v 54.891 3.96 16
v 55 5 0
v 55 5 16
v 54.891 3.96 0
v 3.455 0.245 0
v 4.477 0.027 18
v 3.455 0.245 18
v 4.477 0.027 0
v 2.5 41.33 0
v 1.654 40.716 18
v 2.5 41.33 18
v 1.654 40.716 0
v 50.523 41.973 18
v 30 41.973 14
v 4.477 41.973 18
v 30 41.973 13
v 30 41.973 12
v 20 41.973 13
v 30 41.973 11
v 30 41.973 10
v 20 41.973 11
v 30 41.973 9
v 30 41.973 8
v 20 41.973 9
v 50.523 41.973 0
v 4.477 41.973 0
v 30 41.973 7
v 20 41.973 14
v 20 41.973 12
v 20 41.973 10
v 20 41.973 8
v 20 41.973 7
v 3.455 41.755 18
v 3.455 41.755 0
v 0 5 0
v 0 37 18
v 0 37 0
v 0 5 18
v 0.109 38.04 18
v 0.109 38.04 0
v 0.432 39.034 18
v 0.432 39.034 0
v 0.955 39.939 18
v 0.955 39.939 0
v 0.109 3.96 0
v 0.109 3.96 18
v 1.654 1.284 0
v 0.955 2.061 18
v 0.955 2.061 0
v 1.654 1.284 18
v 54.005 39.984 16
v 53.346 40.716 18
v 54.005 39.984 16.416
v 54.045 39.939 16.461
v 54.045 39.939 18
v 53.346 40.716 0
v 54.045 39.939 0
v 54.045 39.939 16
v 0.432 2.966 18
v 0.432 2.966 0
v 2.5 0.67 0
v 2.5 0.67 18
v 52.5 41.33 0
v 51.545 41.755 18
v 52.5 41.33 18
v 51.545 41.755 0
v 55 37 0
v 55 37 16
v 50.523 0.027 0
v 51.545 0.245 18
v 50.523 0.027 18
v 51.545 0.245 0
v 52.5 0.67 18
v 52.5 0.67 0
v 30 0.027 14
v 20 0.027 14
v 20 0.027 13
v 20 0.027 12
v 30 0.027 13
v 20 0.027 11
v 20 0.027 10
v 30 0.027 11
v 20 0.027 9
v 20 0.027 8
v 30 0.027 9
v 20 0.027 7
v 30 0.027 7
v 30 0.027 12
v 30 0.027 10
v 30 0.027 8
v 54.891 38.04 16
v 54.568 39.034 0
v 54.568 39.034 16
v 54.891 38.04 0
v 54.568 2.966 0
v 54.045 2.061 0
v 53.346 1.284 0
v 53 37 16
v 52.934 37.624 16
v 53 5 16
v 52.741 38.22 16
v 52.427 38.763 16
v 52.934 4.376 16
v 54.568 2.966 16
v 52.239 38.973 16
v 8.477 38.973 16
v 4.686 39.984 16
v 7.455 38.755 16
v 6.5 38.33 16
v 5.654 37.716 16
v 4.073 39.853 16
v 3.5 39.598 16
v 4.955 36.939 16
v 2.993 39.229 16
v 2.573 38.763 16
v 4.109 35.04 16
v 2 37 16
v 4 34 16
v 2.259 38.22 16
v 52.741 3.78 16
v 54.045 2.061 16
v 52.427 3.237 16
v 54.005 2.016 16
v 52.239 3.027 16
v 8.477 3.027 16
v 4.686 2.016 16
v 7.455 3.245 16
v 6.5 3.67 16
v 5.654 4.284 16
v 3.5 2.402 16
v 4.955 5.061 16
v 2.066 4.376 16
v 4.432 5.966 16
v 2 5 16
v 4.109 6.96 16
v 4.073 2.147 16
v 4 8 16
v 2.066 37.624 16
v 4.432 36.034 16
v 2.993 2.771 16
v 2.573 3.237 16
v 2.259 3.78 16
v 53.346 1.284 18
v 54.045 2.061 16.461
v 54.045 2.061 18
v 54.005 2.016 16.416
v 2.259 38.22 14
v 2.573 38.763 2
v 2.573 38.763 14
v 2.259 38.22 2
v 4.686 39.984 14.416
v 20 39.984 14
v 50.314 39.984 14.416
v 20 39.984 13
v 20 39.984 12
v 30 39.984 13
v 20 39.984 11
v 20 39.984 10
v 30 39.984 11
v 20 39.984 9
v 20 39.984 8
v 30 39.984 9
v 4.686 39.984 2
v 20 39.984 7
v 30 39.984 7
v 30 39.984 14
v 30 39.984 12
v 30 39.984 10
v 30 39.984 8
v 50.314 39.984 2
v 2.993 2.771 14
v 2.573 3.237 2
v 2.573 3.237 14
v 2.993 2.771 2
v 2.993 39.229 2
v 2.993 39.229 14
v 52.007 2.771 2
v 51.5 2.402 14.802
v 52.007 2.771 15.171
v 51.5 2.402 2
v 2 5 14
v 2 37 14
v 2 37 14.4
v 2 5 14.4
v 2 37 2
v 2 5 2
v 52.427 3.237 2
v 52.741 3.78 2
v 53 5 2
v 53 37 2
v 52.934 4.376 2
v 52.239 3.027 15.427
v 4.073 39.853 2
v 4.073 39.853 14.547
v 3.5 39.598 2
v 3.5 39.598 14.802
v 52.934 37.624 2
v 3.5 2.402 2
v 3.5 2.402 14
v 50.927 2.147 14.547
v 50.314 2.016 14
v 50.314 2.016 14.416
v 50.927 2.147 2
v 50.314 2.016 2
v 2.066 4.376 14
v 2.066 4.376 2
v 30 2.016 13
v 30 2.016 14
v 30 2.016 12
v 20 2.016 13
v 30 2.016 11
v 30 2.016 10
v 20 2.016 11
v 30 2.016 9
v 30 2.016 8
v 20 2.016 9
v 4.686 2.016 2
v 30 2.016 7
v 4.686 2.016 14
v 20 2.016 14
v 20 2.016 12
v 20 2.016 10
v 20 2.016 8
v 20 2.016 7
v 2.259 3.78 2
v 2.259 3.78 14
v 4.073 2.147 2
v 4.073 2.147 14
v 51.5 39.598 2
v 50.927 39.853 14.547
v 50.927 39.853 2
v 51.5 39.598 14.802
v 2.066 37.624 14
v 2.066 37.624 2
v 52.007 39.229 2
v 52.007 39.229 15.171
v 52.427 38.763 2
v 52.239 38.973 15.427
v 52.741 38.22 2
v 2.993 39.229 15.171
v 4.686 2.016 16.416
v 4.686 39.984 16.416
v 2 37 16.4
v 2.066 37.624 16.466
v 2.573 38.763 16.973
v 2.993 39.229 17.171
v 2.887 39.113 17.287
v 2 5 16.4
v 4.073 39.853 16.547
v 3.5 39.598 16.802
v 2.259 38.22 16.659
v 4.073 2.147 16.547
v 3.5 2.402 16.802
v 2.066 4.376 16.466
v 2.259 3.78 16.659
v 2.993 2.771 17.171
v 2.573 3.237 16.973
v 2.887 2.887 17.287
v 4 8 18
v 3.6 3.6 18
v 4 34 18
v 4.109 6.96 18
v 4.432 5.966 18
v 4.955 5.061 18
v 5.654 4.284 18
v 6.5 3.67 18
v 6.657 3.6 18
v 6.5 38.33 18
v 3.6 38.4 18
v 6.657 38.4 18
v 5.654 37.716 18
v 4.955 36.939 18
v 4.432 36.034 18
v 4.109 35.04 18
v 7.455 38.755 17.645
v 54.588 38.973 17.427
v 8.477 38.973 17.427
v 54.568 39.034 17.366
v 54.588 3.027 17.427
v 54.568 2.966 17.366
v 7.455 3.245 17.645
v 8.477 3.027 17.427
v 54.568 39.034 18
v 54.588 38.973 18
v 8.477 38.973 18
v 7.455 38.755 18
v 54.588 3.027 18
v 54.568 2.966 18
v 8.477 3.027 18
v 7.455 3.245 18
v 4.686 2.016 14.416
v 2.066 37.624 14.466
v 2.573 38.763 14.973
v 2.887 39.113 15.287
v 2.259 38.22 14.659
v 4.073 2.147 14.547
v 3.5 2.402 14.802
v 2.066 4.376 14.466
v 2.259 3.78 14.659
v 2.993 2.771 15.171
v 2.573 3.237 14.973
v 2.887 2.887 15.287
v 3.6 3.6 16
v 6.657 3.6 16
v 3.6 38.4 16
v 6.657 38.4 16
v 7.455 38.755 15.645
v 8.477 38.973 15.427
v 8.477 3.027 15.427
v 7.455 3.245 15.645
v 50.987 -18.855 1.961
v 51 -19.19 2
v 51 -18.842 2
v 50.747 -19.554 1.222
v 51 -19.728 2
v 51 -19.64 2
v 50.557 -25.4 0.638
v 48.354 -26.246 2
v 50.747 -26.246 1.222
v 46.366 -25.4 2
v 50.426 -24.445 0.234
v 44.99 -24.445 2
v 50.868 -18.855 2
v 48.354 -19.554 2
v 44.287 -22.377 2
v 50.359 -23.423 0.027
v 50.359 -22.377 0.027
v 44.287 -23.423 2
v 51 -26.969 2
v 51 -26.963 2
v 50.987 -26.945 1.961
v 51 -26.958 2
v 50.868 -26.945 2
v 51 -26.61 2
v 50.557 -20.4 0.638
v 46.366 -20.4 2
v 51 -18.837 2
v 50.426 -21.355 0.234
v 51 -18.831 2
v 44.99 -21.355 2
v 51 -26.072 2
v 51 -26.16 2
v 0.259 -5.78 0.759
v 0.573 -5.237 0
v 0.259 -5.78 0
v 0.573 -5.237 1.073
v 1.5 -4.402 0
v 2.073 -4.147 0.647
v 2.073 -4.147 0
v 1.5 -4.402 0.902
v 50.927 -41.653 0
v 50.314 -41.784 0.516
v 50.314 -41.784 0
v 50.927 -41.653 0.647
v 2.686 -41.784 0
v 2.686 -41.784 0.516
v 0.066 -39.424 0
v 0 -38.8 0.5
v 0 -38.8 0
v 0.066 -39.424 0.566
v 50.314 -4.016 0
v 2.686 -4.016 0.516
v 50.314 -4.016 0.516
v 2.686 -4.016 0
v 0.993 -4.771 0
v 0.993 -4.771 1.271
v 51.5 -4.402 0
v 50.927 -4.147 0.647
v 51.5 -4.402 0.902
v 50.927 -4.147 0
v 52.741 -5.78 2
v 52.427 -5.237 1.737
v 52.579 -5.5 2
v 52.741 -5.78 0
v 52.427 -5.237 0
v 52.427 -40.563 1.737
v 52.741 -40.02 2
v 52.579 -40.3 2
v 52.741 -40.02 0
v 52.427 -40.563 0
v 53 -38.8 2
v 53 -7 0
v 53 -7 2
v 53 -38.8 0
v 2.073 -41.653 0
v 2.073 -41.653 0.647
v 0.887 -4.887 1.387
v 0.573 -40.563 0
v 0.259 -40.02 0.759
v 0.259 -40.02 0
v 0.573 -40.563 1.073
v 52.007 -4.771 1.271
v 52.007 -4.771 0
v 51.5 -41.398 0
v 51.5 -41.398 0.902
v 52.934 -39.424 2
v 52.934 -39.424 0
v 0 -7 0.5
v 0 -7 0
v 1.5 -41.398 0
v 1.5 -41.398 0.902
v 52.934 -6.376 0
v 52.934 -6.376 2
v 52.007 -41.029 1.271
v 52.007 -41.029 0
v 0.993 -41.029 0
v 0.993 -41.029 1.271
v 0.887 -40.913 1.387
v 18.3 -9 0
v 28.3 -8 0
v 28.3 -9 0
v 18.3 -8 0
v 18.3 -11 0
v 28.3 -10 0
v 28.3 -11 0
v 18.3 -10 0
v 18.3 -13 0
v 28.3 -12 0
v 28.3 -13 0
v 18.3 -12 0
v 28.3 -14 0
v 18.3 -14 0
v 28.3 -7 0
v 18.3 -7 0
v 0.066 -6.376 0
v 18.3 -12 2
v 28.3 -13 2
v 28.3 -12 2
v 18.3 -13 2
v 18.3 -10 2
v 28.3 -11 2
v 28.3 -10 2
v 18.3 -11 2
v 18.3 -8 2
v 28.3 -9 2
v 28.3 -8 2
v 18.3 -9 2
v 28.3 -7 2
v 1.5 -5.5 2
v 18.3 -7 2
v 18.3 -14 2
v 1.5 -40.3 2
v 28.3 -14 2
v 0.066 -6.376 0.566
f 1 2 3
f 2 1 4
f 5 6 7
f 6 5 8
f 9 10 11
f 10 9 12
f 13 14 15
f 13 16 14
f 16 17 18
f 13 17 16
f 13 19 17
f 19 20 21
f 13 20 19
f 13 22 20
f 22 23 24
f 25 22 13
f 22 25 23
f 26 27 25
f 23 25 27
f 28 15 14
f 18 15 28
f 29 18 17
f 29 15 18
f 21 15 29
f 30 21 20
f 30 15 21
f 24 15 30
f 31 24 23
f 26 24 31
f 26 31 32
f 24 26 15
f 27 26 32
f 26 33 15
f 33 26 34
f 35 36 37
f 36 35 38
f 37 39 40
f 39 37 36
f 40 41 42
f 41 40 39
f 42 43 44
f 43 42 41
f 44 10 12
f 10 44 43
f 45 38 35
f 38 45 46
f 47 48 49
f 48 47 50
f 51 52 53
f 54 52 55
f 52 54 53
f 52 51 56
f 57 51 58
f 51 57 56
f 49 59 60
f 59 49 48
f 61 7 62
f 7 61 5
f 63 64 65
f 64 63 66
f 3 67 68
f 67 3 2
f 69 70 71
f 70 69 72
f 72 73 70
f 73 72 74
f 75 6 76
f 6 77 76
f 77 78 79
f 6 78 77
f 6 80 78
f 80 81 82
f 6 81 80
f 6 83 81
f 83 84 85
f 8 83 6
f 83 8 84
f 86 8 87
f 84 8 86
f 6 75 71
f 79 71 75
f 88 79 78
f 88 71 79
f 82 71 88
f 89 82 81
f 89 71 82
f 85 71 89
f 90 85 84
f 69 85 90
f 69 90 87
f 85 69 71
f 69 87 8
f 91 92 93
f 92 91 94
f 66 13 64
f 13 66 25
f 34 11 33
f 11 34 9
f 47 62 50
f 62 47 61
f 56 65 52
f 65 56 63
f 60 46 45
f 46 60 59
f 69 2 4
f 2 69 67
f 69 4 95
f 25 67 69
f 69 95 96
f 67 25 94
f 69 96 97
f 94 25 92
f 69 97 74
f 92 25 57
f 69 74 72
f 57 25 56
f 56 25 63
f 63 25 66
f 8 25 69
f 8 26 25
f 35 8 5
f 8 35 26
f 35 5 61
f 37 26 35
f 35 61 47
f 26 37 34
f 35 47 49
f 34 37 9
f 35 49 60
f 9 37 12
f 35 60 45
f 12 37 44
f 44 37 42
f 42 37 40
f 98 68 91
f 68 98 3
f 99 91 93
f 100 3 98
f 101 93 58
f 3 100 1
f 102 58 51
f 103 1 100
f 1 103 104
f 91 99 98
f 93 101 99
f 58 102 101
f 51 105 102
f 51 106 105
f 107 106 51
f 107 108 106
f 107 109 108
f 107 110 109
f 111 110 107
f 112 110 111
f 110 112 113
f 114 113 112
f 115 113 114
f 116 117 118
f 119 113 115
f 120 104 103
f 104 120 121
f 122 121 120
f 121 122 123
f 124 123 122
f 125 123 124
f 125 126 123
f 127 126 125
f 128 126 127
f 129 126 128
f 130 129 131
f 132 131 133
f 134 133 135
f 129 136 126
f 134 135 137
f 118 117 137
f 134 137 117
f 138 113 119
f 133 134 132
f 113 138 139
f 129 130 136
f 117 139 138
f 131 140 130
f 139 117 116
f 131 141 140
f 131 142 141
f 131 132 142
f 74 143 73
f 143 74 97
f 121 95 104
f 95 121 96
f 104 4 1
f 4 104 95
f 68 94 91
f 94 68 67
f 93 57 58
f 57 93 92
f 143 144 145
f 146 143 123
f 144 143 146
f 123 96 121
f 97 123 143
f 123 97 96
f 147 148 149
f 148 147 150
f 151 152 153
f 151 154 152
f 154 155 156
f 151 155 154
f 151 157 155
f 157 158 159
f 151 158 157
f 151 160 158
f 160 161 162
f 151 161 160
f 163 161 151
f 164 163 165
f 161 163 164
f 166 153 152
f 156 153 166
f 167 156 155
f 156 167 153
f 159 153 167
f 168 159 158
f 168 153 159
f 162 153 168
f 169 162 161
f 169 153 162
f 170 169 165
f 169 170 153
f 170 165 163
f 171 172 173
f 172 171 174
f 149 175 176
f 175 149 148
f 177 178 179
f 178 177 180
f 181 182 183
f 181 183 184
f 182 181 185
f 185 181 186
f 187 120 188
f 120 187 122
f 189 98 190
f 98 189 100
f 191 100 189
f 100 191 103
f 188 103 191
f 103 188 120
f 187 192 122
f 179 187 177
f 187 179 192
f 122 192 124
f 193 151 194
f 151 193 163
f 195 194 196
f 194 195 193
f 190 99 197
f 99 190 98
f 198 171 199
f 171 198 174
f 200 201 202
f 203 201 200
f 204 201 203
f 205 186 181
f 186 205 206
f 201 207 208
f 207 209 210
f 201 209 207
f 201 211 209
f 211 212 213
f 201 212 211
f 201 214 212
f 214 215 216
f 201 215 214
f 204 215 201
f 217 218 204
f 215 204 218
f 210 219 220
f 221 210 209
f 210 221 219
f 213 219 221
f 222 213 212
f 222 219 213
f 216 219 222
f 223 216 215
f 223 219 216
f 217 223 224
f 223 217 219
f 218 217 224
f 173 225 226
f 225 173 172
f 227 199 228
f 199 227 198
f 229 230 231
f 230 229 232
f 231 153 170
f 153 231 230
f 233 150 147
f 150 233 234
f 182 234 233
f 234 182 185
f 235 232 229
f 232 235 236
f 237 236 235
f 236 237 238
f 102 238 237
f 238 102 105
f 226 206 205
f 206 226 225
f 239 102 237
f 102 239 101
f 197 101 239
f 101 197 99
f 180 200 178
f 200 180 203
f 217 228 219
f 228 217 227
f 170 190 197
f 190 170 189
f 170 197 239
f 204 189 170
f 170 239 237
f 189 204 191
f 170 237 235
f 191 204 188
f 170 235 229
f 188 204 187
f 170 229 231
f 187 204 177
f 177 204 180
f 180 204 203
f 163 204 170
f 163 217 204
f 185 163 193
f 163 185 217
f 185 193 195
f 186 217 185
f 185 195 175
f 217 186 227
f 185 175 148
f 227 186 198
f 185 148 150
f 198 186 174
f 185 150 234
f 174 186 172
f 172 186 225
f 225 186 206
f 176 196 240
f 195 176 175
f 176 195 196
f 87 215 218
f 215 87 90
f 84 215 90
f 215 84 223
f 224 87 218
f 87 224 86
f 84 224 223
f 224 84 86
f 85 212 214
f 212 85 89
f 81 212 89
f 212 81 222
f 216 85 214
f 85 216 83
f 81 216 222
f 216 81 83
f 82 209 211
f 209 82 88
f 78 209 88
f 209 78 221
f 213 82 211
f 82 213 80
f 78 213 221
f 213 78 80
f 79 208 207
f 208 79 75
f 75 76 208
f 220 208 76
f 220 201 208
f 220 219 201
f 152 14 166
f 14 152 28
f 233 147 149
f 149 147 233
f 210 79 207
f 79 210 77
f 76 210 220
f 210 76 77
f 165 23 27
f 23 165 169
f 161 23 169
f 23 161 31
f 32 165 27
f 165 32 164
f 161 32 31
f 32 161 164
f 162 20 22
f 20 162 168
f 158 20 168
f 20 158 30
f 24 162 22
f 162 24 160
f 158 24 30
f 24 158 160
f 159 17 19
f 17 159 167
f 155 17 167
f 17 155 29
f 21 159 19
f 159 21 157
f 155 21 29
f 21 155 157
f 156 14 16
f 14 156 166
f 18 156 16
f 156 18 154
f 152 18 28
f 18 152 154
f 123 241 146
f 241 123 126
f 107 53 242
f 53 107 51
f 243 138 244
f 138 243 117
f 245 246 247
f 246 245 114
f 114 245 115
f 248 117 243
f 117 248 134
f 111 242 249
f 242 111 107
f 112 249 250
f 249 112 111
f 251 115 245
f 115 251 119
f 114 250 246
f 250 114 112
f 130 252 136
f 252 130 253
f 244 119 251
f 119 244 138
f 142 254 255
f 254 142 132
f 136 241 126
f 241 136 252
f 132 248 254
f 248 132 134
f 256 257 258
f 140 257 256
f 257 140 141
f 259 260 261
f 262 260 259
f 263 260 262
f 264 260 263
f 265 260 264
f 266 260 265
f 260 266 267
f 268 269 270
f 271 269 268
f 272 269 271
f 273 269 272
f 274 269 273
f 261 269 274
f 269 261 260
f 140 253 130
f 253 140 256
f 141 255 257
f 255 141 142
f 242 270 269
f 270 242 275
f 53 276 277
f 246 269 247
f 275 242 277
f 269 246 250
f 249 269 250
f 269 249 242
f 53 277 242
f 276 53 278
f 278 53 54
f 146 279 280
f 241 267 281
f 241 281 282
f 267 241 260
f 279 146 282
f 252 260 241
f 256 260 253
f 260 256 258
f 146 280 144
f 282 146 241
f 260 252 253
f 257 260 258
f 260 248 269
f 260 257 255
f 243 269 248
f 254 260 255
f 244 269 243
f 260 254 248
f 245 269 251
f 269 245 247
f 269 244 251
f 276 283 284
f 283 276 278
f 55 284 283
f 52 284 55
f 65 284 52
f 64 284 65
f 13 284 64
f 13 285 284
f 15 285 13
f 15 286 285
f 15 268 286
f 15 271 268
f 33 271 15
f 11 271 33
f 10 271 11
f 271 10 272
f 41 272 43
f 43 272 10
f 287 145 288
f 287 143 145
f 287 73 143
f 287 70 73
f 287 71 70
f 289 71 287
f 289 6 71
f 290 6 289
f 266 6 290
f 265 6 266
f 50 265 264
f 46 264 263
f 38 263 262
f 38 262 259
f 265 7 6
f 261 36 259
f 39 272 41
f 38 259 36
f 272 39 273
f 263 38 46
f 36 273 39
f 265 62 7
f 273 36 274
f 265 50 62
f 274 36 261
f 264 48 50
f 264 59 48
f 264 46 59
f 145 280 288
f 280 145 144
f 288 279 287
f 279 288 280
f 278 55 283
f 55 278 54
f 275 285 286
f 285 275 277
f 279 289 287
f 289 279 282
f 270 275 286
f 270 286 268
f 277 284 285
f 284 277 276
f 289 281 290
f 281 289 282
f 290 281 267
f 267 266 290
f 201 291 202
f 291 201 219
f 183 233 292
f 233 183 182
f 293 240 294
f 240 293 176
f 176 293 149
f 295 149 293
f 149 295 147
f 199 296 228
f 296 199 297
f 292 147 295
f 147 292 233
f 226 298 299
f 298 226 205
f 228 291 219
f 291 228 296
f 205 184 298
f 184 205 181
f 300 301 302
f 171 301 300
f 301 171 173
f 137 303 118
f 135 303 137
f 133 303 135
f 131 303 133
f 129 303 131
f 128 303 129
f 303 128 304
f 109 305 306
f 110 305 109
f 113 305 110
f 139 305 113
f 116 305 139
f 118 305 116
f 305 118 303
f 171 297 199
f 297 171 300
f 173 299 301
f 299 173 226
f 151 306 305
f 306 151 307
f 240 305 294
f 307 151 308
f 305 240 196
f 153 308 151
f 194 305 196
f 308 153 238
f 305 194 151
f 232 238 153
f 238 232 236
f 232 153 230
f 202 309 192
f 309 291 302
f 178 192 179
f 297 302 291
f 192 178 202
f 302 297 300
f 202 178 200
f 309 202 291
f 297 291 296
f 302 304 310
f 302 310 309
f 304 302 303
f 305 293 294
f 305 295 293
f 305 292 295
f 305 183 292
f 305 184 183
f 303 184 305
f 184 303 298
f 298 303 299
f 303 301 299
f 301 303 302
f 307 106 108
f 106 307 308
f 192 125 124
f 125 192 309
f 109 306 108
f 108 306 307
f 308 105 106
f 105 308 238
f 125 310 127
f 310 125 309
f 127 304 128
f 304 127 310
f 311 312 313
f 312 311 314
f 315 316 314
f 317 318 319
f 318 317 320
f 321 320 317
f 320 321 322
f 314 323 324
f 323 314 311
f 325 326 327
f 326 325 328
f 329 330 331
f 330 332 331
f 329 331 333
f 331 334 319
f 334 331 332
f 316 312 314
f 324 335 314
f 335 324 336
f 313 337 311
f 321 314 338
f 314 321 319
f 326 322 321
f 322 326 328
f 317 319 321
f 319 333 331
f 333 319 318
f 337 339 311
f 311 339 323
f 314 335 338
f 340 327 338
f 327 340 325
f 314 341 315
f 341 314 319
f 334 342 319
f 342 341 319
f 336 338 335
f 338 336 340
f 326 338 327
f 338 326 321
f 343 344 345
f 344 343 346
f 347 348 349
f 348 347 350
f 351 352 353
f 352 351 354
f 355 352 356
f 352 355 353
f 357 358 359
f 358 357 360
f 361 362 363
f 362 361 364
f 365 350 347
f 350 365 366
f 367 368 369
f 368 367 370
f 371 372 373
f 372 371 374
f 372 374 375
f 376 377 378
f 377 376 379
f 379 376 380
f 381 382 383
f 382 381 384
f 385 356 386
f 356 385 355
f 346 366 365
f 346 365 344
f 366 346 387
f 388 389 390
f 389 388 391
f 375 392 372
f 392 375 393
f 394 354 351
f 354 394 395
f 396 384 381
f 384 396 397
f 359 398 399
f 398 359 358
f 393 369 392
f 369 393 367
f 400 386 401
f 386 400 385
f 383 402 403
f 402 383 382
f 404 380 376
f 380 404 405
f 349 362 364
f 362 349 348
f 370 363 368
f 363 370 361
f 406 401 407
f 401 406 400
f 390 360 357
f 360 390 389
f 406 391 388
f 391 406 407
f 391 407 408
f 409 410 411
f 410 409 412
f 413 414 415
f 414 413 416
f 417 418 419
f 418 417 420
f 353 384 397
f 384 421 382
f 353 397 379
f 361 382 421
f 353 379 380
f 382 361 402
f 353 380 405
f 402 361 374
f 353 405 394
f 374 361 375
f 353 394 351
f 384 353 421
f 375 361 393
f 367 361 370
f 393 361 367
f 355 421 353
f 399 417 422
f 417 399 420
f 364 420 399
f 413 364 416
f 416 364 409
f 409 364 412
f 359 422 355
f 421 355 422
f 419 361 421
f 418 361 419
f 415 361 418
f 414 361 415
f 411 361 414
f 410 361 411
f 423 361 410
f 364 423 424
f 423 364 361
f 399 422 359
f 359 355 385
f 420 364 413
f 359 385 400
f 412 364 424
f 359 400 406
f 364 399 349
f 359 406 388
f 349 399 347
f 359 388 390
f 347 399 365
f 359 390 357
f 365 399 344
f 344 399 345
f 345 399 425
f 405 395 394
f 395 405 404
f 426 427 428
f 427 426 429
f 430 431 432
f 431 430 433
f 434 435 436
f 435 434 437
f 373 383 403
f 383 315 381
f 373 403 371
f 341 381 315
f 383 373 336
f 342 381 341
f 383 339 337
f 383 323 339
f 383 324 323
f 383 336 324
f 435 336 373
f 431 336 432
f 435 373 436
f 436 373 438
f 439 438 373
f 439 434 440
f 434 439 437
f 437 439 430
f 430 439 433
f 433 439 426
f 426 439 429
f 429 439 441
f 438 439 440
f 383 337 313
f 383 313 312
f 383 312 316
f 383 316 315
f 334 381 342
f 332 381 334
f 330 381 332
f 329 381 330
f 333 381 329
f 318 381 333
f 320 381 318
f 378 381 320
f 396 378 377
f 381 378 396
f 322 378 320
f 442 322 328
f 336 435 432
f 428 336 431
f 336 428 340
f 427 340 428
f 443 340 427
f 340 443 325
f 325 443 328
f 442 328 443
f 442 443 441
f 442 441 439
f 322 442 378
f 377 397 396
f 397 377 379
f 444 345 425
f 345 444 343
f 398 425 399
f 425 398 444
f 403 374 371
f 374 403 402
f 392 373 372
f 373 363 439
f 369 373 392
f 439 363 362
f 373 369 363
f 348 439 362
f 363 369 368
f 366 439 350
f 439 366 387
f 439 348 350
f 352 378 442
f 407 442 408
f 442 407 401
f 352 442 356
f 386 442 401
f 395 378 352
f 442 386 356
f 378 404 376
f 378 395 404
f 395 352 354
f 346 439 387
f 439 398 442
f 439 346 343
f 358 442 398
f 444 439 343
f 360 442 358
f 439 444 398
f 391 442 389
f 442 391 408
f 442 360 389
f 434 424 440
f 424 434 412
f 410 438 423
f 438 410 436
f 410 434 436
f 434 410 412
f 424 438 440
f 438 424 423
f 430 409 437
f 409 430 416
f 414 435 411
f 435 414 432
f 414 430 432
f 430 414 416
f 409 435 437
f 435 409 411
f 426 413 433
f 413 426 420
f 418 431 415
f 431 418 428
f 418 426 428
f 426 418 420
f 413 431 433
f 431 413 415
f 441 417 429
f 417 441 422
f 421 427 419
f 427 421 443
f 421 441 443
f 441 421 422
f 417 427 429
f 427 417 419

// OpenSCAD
wallThickness=2;

pcb_w = 34;   // PCB width
pcb_l = 50; // PCB length
pcb_h = 8; // PCB height, assembled
batt_w = 38;  // Battery width
batt_l = 51;  // Battery length
batt_h = 6;  // Battery height
sensor_pos_x = 20; // Sensor position
overall_w = max(batt_w, pcb_w) + 2*wallThickness;
overall_l = max(batt_l, pcb_l) + 2*wallThickness;
overall_h = batt_h + pcb_h + 2*wallThickness;

itemsShown="both"; // [both,box,lid]
boxLength=overall_l;
boxWidth=overall_w;
boxHeight=overall_h;
cornerRadius=5;
bottomThickness=2;
lidThickness=2;
lidClearance=0.2;
lidEdgeThickness=0.5;
// Notch in the lid
withNotch=true;//true;//[true:false]

/* [Global] */
if (itemsShown=="box") showBox();
if (itemsShown=="lid") showLid();
if (itemsShown=="both"){showBox();showLid();}

module showLid(){
	translate ([0, -2*wallThickness, 0]) 
	roundBoxLid(l=boxLength-wallThickness,
				w=boxWidth-2*wallThickness-lidClearance,
				h=lidThickness,
				et=lidEdgeThickness,
				r=cornerRadius-wallThickness,
				notch=withNotch);
}

module showBox(){
	round_box(l=boxLength,
			  w=boxWidth,
			  h=boxHeight,
			  bt=bottomThickness,
			  wt=wallThickness,
			  lt=lidThickness,
			  r=cornerRadius);
}

module round_box(l=40,w=30,h=30,bt=2,wt=2,lt=2,r=5,){
	difference() { 
		round_cube(l=l,w=w,h=h-lt,r=r);
		translate ([wt, wt, bt]) 
		round_cube(l=l-wt*2,w=w-wt*2,h=h,r=r-wt);
        // air holes
        translate([sensor_pos_x,0,7]) cube([10,3,1]);
        translate([sensor_pos_x,0,9]) cube([10,3,1]);
        translate([sensor_pos_x,0,11]) cube([10,3,1]);
        translate([sensor_pos_x,0,13]) cube([10,3,1]);        
        translate([sensor_pos_x,boxWidth-(2*wallThickness),7]) cube([10,5,1]);
        translate([sensor_pos_x,boxWidth-(2*wallThickness),9]) cube([10,5,1]);
        translate([sensor_pos_x,boxWidth-(2*wallThickness),11]) cube([10,5,1]);
        translate([sensor_pos_x,boxWidth-(2*wallThickness),13]) cube([10,5,1]);
	}       


	//use two box rims. one to make a slope to support the lid
	roundBoxRim();
	translate ([0, 0, -wt]) roundBoxRim();
}

module roundBoxRim(l=boxLength,
				   w=boxWidth,
				   h=boxHeight,
				   et=lidEdgeThickness,
				   r=cornerRadius,
				   wt=wallThickness,
				   lt=lidThickness){
	difference() { 
		translate ([0, 0, h-lt]) 
		round_cube(l=l,w=w,h=lt,r=r);
		translate ([wt+lt,wt+lt-et*2,h-lt-0.1]) 
		round_cube(l=l*2,w=w-2*(wt+lt)+4*et,h=lt+0.2,r=r-wt+lt);

		//subtract out a lid to make the ledge
		translate ([wt, w-wt, h-lt-0.1])
		roundBoxLid(l=l*2,w=w-2*wt,h=lt+0.1,wt=wt,t=lt,et=0.5,r=r-wt,notch=false);
	}
}

module roundBoxLid(l=40,w=30,h=3,wt=2,t=2,et=0.5,r=5,notch=true){
	translate ([l, 0, 0]) 
	rotate (a = [0, 0, 180]) 

	difference(){

		round_cube(l=l,w=w,h=h,t=t,r=r);

		translate ([-1, 0, et]) rotate (a = [45, 0, 0])  cube (size = [l+2, h*2, h*2]); 
		translate ([-1, w, et]) rotate (a = [45, 0, 0])  cube (size = [l+2, h*2, h*2]); 
		translate ([l, -1, et]) rotate (a = [45, 0, 90]) cube (size = [w+2, h*2, h*2]); 
		if (notch==true){
			translate([2,w/2,h+0.001]) thumbNotch(10/2,72,t);
		}
        x = sensor_pos_x+2*wallThickness+lidClearance+lidEdgeThickness;
        translate([x,wallThickness+1,-lidThickness]) cube([10,1,lidThickness*3]);
        translate([x,wallThickness+3,-lidThickness]) cube([10,1,lidThickness*3]);
        translate([x,wallThickness+5,-lidThickness]) cube([10,1,lidThickness*3]);
        translate([x,wallThickness+7,-lidThickness]) cube([10,1,lidThickness*3]);
	}

    

}

module thumbNotch(
	thumbR=12/2,
	angle=72,
	notchHeight=2){

	size=10*thumbR;

	rotate([0,0,90])
	difference(){
		translate([0,
					(thumbR*sin(angle)-notchHeight)/tan(angle),
					 thumbR*sin(angle)-notchHeight])
		rotate([angle,0,0])
		cylinder(r=thumbR,h=size,$fn=30);

		translate([-size,-size,0])
		cube(size*2);
	}
}

module round_cube(l=40,w=30,h=20,r=5,$fn=30){
	hull(){ 
		translate ([r, r, 0]) cylinder (h = h, r=r);
		translate ([r, w-r, 0]) cylinder (h = h, r=r);
		translate ([l-r,w-r, 0]) cylinder (h = h, r=r);
		translate ([l-r, r, 0]) cylinder (h = h, r=r);
	}
}
